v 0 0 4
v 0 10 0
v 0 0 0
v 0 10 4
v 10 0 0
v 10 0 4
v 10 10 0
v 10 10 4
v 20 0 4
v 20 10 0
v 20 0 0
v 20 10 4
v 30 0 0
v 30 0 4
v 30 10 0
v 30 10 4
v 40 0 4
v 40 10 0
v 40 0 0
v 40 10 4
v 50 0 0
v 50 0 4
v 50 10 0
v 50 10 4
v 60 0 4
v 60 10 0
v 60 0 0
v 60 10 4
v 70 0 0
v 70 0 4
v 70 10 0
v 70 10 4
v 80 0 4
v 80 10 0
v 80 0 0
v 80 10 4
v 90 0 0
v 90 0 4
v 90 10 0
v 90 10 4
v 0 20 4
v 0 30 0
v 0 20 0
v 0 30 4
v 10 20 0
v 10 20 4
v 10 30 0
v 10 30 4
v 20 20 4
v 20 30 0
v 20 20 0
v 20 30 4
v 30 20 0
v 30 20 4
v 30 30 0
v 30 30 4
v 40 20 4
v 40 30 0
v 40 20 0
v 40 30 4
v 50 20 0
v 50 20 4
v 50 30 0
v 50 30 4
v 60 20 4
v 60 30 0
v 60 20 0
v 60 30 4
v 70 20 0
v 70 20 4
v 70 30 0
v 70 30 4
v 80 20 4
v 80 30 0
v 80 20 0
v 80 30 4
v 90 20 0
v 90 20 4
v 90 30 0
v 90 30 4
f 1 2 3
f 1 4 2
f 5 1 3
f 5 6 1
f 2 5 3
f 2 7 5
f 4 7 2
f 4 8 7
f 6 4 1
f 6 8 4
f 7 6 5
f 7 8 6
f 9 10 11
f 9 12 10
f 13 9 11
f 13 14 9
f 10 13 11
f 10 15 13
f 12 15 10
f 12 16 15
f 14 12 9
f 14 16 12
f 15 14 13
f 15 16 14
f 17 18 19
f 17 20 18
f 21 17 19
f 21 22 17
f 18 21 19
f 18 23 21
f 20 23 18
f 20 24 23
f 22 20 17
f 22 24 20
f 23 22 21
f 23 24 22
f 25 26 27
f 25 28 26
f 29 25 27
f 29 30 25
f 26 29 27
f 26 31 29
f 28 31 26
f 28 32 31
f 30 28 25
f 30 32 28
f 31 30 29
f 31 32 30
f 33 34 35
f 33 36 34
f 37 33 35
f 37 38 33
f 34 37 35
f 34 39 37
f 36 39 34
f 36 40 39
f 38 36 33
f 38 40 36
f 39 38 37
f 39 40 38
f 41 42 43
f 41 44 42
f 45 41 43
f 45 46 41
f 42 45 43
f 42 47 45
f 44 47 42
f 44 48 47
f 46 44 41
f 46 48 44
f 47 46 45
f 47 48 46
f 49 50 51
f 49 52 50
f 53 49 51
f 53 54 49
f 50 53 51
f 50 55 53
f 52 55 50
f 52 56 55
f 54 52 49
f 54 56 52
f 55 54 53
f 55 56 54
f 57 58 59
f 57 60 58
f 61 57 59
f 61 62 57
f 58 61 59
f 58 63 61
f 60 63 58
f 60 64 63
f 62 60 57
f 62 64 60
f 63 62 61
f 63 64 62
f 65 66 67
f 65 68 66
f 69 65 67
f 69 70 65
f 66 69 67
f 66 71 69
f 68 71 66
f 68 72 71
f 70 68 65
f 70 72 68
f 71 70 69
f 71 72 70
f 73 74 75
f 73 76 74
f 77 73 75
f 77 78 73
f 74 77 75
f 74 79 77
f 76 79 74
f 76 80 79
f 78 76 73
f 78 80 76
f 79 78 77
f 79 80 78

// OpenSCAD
translate([0,0,0]) cube([10,10,4]);
translate([20,0,0]) cube([10,10,4]);
translate([40,0,0]) cube([10,10,4]);
translate([60,0,0]) cube([10,10,4]);
translate([80,0,0]) cube([10,10,4]);

translate([0,20,0]) cube([10,10,4]);
translate([20,20,0]) cube([10,10,4]);
translate([40,20,0]) cube([10,10,4]);
translate([60,20,0]) cube([10,10,4]);
translate([80,20,0]) cube([10,10,4]);
